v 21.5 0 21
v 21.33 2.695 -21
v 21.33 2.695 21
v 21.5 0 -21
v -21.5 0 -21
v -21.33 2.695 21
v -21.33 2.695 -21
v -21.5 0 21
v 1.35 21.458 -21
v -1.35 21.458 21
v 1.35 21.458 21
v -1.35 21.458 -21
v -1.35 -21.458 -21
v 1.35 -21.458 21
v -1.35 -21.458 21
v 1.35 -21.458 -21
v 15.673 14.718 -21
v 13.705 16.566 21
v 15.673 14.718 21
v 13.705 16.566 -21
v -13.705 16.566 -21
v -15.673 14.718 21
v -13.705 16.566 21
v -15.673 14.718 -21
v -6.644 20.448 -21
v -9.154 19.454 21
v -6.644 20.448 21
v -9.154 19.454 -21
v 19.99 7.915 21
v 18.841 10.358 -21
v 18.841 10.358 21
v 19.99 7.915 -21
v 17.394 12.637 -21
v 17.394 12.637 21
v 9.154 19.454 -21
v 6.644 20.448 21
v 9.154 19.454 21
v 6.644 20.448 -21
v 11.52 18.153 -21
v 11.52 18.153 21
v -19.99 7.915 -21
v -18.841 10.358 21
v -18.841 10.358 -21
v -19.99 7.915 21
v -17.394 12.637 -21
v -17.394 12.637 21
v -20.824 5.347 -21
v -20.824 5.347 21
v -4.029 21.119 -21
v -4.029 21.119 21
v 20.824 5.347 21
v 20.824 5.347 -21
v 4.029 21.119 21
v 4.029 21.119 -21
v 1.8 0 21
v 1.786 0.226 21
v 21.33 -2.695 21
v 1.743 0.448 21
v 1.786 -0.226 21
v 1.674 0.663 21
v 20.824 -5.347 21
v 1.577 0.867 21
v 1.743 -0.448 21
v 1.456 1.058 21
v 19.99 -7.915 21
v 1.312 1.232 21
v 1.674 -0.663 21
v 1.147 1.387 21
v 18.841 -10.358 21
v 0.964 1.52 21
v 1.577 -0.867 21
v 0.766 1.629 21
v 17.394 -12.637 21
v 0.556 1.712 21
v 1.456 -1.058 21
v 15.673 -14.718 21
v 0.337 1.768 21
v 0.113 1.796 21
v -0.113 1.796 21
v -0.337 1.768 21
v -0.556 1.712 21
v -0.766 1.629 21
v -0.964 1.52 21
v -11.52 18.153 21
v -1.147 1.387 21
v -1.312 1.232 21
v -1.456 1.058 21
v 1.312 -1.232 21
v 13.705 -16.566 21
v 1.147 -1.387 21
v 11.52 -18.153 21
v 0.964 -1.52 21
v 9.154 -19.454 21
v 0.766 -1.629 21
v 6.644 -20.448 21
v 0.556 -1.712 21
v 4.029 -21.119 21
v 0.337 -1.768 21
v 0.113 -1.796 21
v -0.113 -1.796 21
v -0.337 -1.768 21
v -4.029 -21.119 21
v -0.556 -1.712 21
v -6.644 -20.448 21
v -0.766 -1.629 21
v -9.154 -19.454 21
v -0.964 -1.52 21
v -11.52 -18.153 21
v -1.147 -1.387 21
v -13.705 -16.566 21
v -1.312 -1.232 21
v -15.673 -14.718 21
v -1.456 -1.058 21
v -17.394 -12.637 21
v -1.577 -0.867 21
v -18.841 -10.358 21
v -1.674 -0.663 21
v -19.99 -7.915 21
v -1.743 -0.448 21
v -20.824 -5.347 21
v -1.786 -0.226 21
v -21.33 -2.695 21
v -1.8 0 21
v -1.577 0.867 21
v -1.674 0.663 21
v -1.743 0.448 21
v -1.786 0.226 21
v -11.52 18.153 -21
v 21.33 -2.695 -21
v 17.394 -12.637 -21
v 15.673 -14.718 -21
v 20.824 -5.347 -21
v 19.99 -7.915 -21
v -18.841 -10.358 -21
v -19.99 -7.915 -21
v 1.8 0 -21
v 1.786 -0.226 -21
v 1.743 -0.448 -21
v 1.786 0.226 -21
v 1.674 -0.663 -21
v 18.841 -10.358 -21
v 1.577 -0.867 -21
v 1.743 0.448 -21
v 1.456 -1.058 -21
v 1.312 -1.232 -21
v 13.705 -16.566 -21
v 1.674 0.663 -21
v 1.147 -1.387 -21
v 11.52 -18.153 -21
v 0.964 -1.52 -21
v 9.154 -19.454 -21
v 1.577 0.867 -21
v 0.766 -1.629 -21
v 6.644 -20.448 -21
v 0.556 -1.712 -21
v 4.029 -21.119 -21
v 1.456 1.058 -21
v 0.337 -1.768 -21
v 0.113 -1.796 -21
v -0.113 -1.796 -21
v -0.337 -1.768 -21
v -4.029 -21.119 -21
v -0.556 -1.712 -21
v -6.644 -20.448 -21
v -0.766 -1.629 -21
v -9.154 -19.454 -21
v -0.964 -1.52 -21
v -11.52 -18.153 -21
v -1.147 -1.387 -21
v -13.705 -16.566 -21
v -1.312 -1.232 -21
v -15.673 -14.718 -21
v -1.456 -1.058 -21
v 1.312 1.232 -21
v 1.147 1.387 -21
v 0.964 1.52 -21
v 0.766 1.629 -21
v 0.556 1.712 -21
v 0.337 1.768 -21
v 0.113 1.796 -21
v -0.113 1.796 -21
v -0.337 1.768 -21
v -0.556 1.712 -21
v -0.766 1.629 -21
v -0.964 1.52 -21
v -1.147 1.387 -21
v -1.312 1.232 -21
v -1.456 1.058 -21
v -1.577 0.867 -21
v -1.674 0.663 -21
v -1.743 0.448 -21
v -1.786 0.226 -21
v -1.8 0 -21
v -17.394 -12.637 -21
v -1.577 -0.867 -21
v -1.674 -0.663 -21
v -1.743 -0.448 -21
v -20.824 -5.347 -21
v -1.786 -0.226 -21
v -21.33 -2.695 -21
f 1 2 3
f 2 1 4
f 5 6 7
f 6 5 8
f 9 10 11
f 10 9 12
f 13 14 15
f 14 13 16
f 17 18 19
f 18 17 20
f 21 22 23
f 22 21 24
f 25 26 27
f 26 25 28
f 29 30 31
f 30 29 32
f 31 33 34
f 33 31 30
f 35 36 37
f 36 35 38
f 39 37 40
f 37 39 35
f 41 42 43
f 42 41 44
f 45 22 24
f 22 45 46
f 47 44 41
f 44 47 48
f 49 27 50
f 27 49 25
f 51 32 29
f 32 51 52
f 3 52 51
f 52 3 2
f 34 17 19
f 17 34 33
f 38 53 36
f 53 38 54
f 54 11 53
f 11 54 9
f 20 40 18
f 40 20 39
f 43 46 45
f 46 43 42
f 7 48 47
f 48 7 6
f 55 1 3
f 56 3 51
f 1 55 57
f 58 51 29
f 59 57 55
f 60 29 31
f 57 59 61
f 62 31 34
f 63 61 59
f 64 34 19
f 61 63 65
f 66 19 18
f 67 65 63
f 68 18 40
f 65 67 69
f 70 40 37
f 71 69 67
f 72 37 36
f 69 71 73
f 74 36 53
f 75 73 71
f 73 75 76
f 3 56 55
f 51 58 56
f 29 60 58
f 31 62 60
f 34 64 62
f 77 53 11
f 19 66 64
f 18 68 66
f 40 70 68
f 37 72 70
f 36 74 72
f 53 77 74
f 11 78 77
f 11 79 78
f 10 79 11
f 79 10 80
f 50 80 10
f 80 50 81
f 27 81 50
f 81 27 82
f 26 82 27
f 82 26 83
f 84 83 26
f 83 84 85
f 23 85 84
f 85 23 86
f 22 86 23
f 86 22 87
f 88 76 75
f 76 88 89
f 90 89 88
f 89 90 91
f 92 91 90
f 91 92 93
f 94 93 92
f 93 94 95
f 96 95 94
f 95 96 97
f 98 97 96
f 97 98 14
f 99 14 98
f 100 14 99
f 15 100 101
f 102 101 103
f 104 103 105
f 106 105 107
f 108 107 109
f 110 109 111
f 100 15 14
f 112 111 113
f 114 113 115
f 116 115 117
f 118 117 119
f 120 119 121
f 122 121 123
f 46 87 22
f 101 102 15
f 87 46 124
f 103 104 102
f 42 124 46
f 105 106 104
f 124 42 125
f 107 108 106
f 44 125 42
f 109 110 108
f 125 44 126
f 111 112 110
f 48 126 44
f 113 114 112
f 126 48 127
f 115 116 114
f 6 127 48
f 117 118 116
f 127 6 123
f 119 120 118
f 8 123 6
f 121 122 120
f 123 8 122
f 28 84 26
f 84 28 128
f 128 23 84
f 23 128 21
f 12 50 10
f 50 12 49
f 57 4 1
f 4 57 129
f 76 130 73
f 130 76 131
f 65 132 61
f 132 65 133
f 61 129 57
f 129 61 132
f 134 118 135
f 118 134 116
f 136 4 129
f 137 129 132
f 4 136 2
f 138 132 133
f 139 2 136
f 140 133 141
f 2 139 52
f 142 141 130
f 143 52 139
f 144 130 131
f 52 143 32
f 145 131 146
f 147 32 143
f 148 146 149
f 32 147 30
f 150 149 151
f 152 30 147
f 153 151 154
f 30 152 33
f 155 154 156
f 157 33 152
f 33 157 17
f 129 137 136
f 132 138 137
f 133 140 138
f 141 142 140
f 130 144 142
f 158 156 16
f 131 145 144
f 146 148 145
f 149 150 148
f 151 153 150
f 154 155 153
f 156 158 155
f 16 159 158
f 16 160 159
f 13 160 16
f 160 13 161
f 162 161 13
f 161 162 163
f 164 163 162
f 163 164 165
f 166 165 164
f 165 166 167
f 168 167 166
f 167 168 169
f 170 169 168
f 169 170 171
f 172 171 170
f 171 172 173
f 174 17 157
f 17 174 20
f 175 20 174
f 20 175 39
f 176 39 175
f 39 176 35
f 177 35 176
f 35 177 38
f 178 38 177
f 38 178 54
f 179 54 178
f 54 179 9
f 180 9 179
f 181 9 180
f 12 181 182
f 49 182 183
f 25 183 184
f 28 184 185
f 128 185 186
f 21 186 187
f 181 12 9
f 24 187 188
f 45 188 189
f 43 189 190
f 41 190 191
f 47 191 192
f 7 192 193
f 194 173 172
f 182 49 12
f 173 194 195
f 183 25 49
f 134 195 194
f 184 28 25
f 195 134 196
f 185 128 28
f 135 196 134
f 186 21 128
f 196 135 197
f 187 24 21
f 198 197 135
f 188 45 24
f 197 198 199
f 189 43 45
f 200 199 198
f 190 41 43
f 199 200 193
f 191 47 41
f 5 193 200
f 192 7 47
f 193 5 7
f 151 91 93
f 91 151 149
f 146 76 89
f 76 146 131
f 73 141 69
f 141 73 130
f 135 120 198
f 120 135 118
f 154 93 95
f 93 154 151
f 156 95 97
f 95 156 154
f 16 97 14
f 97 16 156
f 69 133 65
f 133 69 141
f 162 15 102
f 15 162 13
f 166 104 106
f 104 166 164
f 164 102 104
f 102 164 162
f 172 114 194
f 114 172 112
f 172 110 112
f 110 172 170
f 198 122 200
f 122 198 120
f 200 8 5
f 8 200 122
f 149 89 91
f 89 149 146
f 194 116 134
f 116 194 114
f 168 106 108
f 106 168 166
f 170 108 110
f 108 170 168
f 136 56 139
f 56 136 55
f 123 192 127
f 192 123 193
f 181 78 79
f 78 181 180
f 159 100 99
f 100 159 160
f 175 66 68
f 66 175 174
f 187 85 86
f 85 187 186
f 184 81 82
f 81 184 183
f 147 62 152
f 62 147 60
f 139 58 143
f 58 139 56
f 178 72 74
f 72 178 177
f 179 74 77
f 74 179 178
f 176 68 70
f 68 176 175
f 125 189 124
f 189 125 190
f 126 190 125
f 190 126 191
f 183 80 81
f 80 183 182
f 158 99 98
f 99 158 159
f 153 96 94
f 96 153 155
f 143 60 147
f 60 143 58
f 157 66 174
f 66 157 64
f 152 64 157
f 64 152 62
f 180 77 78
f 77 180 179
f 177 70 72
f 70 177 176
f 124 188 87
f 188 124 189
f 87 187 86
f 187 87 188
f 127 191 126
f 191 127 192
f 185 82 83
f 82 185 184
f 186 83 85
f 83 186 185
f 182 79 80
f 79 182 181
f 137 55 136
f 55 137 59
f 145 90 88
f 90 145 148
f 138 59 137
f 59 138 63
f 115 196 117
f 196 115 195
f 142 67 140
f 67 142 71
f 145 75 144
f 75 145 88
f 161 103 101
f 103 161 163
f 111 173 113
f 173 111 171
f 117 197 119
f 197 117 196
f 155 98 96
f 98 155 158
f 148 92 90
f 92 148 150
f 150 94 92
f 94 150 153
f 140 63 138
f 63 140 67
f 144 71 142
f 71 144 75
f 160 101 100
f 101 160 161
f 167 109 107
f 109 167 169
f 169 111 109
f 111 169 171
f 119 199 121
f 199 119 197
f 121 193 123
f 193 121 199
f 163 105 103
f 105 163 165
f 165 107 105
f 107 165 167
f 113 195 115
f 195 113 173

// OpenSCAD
$fn = 50;


difference() {
	union() {
		translate(v = [0, 0, -21.0000000000]) {
			cylinder(h = 42, r = 21.5000000000);
		}
	}
	union() {
		translate(v = [0, 0, -100.0000000000]) {
			cylinder(h = 200, r = 1.8000000000);
		}
	}
}
